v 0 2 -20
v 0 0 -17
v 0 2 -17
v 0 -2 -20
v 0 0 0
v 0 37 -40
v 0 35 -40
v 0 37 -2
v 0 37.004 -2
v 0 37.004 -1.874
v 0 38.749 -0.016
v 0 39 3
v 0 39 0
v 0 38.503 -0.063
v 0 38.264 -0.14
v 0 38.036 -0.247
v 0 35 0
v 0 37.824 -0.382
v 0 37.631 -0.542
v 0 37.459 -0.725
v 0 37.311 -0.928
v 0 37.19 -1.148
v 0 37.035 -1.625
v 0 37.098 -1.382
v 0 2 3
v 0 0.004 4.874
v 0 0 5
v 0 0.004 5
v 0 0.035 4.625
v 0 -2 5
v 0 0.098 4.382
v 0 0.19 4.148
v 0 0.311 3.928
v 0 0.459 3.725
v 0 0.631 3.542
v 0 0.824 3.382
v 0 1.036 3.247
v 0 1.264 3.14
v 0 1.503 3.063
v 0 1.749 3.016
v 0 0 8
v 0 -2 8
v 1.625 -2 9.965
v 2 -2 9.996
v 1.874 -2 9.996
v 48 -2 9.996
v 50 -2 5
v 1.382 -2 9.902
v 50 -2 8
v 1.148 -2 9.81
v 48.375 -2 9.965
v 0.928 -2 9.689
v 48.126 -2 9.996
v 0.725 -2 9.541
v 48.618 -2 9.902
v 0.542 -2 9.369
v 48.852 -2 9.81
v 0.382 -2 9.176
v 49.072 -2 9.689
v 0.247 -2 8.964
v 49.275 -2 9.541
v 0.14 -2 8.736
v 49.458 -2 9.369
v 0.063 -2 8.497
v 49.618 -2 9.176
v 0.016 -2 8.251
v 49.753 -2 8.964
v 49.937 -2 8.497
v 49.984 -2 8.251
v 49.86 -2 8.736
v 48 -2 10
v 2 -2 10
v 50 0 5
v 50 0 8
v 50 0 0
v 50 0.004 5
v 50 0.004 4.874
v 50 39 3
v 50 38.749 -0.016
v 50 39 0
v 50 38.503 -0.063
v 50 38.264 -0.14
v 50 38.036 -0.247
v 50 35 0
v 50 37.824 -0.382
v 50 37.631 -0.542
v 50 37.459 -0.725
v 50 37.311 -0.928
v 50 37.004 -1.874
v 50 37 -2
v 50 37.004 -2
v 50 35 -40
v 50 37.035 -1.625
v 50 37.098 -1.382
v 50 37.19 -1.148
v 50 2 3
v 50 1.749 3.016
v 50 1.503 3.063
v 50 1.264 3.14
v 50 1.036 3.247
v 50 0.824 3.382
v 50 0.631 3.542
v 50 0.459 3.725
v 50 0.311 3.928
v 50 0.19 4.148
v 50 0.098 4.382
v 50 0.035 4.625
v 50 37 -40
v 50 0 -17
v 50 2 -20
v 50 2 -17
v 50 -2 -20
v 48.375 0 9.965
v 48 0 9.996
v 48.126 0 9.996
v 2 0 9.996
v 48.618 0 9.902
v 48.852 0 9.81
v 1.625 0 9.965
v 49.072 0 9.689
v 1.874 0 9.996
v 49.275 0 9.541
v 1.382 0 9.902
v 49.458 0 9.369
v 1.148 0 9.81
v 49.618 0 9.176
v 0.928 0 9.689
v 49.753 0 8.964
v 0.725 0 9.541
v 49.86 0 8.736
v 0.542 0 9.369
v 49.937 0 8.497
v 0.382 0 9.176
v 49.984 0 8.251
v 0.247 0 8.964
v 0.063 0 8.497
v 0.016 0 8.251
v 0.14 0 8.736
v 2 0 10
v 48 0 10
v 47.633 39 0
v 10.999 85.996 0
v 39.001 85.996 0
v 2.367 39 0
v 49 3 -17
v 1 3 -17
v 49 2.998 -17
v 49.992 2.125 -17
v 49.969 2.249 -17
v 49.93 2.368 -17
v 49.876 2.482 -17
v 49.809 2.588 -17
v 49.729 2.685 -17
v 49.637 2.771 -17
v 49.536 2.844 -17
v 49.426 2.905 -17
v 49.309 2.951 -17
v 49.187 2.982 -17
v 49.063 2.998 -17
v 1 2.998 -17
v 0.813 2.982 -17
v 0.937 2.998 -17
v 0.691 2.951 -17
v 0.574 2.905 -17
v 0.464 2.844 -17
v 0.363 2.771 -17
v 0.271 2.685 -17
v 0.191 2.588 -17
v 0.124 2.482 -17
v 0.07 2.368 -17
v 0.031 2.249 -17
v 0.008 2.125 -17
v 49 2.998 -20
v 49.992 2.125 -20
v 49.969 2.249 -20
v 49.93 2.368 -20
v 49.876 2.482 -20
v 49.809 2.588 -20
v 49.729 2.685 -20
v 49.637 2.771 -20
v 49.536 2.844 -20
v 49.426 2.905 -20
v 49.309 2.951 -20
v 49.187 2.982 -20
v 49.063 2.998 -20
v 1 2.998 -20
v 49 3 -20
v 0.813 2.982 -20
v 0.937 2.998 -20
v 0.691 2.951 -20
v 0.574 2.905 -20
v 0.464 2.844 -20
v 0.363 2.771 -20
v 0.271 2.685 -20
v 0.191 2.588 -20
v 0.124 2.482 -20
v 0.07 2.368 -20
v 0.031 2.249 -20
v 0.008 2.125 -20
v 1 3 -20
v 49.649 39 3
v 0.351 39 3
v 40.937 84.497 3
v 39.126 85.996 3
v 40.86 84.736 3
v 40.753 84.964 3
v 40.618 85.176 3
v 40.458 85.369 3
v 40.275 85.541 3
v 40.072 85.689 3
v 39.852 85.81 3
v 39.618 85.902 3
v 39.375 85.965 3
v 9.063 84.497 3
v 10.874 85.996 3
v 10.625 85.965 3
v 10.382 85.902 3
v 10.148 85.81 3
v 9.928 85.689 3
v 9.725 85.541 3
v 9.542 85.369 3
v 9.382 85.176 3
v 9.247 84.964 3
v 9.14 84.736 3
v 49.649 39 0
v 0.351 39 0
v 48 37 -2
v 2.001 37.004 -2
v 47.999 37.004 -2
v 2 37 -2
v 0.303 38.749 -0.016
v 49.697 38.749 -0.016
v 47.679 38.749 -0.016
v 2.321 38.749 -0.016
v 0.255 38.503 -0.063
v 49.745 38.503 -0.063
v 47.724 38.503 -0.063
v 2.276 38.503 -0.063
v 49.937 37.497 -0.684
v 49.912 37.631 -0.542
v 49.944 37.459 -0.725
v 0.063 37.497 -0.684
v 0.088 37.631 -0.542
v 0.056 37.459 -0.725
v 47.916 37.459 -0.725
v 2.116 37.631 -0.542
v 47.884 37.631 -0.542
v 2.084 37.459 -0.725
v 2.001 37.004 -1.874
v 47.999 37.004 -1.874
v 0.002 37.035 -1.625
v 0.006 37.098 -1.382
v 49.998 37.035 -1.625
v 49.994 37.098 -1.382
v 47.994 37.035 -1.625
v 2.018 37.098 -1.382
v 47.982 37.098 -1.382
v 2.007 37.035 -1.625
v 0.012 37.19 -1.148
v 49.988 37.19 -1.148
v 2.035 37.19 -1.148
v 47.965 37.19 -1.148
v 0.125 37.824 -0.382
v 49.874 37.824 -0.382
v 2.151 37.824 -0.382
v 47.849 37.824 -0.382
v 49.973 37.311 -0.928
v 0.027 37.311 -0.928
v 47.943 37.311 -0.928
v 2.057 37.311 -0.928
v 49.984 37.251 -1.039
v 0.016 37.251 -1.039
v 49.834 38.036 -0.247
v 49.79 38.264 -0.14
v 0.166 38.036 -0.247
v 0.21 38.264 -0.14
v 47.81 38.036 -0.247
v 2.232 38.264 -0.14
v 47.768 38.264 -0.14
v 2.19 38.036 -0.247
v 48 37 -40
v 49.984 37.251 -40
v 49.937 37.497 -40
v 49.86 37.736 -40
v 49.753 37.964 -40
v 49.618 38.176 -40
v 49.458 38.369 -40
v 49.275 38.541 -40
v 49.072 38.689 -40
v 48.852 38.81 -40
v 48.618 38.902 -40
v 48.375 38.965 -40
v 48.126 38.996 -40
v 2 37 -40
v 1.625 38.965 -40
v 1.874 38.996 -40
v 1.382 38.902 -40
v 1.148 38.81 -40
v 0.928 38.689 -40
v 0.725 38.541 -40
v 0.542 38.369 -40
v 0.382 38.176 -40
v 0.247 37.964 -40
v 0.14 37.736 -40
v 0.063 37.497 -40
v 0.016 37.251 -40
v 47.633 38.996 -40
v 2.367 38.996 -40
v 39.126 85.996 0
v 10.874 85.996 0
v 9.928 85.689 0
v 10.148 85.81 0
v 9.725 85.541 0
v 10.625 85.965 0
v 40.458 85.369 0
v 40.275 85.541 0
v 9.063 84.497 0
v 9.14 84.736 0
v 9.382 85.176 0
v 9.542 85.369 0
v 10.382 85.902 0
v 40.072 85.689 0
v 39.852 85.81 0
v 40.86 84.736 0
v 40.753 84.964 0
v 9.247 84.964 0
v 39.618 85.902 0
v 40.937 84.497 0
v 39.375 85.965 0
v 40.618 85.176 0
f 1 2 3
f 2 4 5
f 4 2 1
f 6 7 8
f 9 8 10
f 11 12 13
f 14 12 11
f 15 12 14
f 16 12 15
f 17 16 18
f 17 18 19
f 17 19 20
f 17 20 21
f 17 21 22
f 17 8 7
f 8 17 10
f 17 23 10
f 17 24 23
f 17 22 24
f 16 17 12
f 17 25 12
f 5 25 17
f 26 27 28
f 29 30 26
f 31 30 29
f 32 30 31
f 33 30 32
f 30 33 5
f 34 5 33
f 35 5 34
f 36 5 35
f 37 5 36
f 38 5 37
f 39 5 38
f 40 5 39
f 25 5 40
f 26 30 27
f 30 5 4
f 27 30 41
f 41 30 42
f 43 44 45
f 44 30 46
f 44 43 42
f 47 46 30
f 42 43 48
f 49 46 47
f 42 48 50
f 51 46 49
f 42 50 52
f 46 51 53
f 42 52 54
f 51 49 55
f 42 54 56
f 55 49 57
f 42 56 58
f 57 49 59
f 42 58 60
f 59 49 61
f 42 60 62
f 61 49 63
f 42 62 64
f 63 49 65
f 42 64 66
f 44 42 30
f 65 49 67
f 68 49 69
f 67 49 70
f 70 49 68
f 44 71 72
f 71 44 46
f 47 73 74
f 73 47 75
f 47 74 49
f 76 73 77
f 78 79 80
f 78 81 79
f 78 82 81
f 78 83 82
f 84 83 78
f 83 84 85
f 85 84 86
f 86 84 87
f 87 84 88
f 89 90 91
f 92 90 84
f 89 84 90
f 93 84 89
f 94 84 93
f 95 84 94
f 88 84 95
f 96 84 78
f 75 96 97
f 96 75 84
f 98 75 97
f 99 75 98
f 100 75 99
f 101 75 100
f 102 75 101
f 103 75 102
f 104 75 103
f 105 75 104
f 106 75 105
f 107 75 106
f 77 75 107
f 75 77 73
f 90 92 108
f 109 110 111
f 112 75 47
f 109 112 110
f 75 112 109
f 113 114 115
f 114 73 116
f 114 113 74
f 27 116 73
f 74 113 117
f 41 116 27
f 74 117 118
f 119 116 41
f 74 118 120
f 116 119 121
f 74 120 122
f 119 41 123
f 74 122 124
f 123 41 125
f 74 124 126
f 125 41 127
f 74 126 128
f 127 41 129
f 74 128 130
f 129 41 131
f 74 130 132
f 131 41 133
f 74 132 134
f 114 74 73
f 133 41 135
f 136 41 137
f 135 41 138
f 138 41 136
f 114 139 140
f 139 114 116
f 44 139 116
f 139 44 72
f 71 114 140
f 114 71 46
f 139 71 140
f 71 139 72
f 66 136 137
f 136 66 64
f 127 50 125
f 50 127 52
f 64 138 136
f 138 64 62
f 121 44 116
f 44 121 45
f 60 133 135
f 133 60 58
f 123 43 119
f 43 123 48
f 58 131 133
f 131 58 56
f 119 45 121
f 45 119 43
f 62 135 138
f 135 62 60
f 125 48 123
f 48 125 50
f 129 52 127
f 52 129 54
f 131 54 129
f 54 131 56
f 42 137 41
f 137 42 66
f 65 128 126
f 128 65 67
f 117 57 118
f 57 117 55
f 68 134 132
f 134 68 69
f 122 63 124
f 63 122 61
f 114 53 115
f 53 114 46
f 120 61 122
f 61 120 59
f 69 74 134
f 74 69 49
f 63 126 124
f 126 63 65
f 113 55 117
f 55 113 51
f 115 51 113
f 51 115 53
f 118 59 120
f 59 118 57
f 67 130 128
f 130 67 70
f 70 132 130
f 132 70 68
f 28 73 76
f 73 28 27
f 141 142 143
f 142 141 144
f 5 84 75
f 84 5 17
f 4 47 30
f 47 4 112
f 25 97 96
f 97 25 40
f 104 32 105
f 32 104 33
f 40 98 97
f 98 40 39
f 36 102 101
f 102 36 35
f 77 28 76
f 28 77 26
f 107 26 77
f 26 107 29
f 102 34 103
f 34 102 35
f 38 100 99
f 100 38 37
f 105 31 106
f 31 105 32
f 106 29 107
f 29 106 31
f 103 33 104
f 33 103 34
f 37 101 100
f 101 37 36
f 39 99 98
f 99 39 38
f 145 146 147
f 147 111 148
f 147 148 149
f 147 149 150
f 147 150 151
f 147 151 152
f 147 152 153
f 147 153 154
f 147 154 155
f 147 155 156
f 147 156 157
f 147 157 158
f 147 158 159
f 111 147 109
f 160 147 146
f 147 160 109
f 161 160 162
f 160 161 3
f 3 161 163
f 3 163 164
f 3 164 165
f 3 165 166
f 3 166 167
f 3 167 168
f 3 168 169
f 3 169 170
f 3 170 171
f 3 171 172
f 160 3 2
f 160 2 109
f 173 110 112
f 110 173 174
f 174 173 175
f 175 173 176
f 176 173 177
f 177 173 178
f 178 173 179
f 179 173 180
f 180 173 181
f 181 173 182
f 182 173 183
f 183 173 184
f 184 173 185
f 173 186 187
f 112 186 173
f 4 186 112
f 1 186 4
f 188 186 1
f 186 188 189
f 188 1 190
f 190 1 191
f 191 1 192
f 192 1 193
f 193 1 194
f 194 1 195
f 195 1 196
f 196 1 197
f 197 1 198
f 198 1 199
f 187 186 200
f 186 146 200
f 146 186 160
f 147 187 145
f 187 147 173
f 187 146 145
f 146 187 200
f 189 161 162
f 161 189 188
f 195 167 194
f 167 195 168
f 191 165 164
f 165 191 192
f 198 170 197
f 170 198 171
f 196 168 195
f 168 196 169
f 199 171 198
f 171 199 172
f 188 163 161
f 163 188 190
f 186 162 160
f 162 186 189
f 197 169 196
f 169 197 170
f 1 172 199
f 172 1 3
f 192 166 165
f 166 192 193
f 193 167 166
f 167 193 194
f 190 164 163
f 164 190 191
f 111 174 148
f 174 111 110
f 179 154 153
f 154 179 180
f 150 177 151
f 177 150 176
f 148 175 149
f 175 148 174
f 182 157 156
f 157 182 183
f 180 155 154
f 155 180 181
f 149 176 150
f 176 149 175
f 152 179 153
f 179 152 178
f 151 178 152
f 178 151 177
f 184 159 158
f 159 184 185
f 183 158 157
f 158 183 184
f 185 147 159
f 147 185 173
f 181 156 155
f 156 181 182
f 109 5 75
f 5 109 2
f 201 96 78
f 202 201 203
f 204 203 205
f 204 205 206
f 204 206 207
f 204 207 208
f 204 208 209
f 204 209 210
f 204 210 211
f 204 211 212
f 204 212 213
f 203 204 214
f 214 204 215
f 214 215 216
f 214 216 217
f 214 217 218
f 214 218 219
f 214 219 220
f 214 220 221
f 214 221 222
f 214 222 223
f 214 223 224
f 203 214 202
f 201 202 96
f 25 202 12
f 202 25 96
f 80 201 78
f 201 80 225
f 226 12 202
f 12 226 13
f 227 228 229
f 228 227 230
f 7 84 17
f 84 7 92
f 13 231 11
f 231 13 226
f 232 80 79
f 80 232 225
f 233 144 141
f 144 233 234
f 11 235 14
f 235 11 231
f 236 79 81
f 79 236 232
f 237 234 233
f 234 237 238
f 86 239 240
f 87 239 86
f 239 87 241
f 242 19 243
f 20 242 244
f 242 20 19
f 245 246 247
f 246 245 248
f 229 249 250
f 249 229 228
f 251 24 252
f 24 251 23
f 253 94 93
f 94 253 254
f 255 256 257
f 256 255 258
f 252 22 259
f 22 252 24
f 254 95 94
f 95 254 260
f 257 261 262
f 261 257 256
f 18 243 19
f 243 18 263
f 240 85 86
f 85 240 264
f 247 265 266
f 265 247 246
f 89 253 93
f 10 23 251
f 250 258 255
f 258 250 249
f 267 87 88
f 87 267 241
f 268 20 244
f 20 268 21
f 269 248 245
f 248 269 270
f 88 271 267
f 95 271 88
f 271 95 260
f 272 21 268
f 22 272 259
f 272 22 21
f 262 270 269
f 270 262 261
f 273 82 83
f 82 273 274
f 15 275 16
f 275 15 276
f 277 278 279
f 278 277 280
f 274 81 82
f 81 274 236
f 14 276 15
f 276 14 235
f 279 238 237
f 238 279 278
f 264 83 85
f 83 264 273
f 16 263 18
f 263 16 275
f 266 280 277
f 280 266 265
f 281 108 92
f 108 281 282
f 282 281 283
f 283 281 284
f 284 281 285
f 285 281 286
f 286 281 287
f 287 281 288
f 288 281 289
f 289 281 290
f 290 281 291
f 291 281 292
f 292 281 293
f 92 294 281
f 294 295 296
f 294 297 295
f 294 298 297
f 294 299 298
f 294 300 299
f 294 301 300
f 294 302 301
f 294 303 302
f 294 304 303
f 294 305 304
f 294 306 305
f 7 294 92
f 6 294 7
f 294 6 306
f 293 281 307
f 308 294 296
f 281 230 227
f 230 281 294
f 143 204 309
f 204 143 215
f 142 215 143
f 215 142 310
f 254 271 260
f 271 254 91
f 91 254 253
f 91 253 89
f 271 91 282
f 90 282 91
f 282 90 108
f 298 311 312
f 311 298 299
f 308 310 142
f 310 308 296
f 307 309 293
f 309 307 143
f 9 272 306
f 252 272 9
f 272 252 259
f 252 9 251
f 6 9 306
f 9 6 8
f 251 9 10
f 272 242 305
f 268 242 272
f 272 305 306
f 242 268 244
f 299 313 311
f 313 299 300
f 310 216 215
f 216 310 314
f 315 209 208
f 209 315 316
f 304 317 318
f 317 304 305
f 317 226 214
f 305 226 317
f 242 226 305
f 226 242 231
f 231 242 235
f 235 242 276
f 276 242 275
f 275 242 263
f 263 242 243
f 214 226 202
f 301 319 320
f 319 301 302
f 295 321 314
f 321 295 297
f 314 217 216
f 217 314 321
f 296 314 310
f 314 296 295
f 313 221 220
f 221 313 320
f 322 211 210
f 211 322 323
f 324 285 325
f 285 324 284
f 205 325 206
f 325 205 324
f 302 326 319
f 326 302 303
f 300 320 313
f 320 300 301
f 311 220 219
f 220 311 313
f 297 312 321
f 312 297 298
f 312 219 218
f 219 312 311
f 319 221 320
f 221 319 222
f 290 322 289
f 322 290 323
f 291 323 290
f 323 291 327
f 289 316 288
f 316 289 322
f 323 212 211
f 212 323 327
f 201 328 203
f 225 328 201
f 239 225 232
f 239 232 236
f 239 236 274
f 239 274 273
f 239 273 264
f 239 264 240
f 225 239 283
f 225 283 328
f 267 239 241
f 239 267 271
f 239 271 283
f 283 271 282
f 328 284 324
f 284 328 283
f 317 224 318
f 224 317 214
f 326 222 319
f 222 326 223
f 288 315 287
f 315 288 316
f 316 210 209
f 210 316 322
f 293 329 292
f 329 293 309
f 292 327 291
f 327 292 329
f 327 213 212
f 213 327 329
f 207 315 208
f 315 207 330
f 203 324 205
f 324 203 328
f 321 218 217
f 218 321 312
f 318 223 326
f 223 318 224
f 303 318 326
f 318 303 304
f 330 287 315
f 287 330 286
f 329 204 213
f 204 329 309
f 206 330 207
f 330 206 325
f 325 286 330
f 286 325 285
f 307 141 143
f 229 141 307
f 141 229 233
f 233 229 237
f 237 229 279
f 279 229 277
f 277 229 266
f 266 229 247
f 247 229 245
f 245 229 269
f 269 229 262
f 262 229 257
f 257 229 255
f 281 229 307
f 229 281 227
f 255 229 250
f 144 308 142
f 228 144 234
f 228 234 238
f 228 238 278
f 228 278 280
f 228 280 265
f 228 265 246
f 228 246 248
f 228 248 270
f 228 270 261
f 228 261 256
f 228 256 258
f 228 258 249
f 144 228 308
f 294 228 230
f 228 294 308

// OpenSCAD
// file: RoundedRectangle.scad
// Copied from: https://github.com/Drunkar/openscad_modules/blob/master/modules/RoundedRectangle.scad
// parameters
X = 50;
Y = 30;
THICKNESS = 2;
R = 2;
RESOLUTION = 50;

module RoundedRectangle(x, y, thickness, r, $fn=0) {

    translate([0, r, 0])
        cube([x, y-2*r, thickness]);
    translate([r, 0, 0])
        cube([x-2*r, y, thickness]);

    translate([r, r, 0])
        cylinder(r=r, h=thickness, $fn=$fn);
    translate([x-r, r, 0])
        cylinder(r=r, h=thickness, $fn=$fn);
    translate([r, y-r, 0])
        cylinder(r=r, h=thickness, $fn=$fn);
    translate([x-r, y-r, 0])
        cylinder(r=r, h=thickness, $fn=$fn);

}

// main
RoundedRectangle(x=X, y=Y, thickness=THICKNESS, r=R, $fn=RESOLUTION);
// main file
use <RoundedRectangle.scad>;

module DisplaySpeakerMounter() {
    RESOLUTION = 50;
    x_baseplate_front = 50;
    x_baseplate_back = 32;
    y_baseplate = 84;
    z_baseplate = 3;
    y_display = 35;
    z_rear_panel = 40;
    
    // base plate
    hull() {
        RoundedRectangle(x=x_baseplate_front, y=y_display+2, thickness=z_baseplate, r=2, $fn=RESOLUTION);
        translate([(x_baseplate_front-x_baseplate_back)/2, y_baseplate-2, 0])
            RoundedRectangle(x=x_baseplate_back, y=2, thickness=3, r=2, $fn=RESOLUTION);
    }
    
    // front panel
    rotate([90, 0, 0])
        RoundedRectangle(x=x_baseplate_front, y=3+7, thickness=2, r=2, $fn=RESOLUTION);
    difference() {
        translate([0, -2, 0])
            cube([x_baseplate_front, 4, z_baseplate+2]);
        
        translate([0, 2, z_baseplate+2])
            rotate([0, 90, 0])
                cylinder(r=2, h=x_baseplate_front, $fn=RESOLUTION);
    }
    translate([0, -2, -(17+3)]) {
        cube([x_baseplate_front, 2, 17+3]);
        RoundedRectangle(x=x_baseplate_front, y=2+3, thickness=3, r=1, $fn=RESOLUTION);
    }
    
    // raer panel
    translate([0, y_display, -z_rear_panel]) {
        cube([x_baseplate_front, 2, z_rear_panel+z_baseplate]);

        translate([0, 0, z_rear_panel])
            difference() {
                translate([0, 0, -2])
                    cube([x_baseplate_front, 4, z_baseplate+2]);
                
                translate([0, 4, -2])
                    rotate([0, 90, 0])
                        cylinder(r=2, h=x_baseplate_front, $fn=RESOLUTION);
            }
    }
    
    // side panel
    translate([0, y_display, -z_rear_panel])
        difference() {
            hull() {
                RoundedRectangle(x=x_baseplate_front, y=2, thickness=z_rear_panel+z_baseplate, r=2, $fn=RESOLUTION);
                translate([(x_baseplate_front-x_baseplate_back)/2, y_baseplate-y_display-2, z_rear_panel])
                    RoundedRectangle(x=x_baseplate_back, y=2, thickness=z_baseplate, r=2, $fn=RESOLUTION);
            }
            
            hull() {
                translate([2, 0, -2])
                    cube([x_baseplate_front-4, 2, z_rear_panel+z_baseplate+2]);
                translate([(x_baseplate_front-x_baseplate_back)/2+2, y_baseplate-y_display, z_rear_panel-2])
                    cube([x_baseplate_back-4, 2, z_baseplate+2]);
            }
            
            translate([0, -2, 0])
                cube([x_baseplate_front, 4, z_rear_panel]);
            
        }
}

DisplaySpeakerMounter();
